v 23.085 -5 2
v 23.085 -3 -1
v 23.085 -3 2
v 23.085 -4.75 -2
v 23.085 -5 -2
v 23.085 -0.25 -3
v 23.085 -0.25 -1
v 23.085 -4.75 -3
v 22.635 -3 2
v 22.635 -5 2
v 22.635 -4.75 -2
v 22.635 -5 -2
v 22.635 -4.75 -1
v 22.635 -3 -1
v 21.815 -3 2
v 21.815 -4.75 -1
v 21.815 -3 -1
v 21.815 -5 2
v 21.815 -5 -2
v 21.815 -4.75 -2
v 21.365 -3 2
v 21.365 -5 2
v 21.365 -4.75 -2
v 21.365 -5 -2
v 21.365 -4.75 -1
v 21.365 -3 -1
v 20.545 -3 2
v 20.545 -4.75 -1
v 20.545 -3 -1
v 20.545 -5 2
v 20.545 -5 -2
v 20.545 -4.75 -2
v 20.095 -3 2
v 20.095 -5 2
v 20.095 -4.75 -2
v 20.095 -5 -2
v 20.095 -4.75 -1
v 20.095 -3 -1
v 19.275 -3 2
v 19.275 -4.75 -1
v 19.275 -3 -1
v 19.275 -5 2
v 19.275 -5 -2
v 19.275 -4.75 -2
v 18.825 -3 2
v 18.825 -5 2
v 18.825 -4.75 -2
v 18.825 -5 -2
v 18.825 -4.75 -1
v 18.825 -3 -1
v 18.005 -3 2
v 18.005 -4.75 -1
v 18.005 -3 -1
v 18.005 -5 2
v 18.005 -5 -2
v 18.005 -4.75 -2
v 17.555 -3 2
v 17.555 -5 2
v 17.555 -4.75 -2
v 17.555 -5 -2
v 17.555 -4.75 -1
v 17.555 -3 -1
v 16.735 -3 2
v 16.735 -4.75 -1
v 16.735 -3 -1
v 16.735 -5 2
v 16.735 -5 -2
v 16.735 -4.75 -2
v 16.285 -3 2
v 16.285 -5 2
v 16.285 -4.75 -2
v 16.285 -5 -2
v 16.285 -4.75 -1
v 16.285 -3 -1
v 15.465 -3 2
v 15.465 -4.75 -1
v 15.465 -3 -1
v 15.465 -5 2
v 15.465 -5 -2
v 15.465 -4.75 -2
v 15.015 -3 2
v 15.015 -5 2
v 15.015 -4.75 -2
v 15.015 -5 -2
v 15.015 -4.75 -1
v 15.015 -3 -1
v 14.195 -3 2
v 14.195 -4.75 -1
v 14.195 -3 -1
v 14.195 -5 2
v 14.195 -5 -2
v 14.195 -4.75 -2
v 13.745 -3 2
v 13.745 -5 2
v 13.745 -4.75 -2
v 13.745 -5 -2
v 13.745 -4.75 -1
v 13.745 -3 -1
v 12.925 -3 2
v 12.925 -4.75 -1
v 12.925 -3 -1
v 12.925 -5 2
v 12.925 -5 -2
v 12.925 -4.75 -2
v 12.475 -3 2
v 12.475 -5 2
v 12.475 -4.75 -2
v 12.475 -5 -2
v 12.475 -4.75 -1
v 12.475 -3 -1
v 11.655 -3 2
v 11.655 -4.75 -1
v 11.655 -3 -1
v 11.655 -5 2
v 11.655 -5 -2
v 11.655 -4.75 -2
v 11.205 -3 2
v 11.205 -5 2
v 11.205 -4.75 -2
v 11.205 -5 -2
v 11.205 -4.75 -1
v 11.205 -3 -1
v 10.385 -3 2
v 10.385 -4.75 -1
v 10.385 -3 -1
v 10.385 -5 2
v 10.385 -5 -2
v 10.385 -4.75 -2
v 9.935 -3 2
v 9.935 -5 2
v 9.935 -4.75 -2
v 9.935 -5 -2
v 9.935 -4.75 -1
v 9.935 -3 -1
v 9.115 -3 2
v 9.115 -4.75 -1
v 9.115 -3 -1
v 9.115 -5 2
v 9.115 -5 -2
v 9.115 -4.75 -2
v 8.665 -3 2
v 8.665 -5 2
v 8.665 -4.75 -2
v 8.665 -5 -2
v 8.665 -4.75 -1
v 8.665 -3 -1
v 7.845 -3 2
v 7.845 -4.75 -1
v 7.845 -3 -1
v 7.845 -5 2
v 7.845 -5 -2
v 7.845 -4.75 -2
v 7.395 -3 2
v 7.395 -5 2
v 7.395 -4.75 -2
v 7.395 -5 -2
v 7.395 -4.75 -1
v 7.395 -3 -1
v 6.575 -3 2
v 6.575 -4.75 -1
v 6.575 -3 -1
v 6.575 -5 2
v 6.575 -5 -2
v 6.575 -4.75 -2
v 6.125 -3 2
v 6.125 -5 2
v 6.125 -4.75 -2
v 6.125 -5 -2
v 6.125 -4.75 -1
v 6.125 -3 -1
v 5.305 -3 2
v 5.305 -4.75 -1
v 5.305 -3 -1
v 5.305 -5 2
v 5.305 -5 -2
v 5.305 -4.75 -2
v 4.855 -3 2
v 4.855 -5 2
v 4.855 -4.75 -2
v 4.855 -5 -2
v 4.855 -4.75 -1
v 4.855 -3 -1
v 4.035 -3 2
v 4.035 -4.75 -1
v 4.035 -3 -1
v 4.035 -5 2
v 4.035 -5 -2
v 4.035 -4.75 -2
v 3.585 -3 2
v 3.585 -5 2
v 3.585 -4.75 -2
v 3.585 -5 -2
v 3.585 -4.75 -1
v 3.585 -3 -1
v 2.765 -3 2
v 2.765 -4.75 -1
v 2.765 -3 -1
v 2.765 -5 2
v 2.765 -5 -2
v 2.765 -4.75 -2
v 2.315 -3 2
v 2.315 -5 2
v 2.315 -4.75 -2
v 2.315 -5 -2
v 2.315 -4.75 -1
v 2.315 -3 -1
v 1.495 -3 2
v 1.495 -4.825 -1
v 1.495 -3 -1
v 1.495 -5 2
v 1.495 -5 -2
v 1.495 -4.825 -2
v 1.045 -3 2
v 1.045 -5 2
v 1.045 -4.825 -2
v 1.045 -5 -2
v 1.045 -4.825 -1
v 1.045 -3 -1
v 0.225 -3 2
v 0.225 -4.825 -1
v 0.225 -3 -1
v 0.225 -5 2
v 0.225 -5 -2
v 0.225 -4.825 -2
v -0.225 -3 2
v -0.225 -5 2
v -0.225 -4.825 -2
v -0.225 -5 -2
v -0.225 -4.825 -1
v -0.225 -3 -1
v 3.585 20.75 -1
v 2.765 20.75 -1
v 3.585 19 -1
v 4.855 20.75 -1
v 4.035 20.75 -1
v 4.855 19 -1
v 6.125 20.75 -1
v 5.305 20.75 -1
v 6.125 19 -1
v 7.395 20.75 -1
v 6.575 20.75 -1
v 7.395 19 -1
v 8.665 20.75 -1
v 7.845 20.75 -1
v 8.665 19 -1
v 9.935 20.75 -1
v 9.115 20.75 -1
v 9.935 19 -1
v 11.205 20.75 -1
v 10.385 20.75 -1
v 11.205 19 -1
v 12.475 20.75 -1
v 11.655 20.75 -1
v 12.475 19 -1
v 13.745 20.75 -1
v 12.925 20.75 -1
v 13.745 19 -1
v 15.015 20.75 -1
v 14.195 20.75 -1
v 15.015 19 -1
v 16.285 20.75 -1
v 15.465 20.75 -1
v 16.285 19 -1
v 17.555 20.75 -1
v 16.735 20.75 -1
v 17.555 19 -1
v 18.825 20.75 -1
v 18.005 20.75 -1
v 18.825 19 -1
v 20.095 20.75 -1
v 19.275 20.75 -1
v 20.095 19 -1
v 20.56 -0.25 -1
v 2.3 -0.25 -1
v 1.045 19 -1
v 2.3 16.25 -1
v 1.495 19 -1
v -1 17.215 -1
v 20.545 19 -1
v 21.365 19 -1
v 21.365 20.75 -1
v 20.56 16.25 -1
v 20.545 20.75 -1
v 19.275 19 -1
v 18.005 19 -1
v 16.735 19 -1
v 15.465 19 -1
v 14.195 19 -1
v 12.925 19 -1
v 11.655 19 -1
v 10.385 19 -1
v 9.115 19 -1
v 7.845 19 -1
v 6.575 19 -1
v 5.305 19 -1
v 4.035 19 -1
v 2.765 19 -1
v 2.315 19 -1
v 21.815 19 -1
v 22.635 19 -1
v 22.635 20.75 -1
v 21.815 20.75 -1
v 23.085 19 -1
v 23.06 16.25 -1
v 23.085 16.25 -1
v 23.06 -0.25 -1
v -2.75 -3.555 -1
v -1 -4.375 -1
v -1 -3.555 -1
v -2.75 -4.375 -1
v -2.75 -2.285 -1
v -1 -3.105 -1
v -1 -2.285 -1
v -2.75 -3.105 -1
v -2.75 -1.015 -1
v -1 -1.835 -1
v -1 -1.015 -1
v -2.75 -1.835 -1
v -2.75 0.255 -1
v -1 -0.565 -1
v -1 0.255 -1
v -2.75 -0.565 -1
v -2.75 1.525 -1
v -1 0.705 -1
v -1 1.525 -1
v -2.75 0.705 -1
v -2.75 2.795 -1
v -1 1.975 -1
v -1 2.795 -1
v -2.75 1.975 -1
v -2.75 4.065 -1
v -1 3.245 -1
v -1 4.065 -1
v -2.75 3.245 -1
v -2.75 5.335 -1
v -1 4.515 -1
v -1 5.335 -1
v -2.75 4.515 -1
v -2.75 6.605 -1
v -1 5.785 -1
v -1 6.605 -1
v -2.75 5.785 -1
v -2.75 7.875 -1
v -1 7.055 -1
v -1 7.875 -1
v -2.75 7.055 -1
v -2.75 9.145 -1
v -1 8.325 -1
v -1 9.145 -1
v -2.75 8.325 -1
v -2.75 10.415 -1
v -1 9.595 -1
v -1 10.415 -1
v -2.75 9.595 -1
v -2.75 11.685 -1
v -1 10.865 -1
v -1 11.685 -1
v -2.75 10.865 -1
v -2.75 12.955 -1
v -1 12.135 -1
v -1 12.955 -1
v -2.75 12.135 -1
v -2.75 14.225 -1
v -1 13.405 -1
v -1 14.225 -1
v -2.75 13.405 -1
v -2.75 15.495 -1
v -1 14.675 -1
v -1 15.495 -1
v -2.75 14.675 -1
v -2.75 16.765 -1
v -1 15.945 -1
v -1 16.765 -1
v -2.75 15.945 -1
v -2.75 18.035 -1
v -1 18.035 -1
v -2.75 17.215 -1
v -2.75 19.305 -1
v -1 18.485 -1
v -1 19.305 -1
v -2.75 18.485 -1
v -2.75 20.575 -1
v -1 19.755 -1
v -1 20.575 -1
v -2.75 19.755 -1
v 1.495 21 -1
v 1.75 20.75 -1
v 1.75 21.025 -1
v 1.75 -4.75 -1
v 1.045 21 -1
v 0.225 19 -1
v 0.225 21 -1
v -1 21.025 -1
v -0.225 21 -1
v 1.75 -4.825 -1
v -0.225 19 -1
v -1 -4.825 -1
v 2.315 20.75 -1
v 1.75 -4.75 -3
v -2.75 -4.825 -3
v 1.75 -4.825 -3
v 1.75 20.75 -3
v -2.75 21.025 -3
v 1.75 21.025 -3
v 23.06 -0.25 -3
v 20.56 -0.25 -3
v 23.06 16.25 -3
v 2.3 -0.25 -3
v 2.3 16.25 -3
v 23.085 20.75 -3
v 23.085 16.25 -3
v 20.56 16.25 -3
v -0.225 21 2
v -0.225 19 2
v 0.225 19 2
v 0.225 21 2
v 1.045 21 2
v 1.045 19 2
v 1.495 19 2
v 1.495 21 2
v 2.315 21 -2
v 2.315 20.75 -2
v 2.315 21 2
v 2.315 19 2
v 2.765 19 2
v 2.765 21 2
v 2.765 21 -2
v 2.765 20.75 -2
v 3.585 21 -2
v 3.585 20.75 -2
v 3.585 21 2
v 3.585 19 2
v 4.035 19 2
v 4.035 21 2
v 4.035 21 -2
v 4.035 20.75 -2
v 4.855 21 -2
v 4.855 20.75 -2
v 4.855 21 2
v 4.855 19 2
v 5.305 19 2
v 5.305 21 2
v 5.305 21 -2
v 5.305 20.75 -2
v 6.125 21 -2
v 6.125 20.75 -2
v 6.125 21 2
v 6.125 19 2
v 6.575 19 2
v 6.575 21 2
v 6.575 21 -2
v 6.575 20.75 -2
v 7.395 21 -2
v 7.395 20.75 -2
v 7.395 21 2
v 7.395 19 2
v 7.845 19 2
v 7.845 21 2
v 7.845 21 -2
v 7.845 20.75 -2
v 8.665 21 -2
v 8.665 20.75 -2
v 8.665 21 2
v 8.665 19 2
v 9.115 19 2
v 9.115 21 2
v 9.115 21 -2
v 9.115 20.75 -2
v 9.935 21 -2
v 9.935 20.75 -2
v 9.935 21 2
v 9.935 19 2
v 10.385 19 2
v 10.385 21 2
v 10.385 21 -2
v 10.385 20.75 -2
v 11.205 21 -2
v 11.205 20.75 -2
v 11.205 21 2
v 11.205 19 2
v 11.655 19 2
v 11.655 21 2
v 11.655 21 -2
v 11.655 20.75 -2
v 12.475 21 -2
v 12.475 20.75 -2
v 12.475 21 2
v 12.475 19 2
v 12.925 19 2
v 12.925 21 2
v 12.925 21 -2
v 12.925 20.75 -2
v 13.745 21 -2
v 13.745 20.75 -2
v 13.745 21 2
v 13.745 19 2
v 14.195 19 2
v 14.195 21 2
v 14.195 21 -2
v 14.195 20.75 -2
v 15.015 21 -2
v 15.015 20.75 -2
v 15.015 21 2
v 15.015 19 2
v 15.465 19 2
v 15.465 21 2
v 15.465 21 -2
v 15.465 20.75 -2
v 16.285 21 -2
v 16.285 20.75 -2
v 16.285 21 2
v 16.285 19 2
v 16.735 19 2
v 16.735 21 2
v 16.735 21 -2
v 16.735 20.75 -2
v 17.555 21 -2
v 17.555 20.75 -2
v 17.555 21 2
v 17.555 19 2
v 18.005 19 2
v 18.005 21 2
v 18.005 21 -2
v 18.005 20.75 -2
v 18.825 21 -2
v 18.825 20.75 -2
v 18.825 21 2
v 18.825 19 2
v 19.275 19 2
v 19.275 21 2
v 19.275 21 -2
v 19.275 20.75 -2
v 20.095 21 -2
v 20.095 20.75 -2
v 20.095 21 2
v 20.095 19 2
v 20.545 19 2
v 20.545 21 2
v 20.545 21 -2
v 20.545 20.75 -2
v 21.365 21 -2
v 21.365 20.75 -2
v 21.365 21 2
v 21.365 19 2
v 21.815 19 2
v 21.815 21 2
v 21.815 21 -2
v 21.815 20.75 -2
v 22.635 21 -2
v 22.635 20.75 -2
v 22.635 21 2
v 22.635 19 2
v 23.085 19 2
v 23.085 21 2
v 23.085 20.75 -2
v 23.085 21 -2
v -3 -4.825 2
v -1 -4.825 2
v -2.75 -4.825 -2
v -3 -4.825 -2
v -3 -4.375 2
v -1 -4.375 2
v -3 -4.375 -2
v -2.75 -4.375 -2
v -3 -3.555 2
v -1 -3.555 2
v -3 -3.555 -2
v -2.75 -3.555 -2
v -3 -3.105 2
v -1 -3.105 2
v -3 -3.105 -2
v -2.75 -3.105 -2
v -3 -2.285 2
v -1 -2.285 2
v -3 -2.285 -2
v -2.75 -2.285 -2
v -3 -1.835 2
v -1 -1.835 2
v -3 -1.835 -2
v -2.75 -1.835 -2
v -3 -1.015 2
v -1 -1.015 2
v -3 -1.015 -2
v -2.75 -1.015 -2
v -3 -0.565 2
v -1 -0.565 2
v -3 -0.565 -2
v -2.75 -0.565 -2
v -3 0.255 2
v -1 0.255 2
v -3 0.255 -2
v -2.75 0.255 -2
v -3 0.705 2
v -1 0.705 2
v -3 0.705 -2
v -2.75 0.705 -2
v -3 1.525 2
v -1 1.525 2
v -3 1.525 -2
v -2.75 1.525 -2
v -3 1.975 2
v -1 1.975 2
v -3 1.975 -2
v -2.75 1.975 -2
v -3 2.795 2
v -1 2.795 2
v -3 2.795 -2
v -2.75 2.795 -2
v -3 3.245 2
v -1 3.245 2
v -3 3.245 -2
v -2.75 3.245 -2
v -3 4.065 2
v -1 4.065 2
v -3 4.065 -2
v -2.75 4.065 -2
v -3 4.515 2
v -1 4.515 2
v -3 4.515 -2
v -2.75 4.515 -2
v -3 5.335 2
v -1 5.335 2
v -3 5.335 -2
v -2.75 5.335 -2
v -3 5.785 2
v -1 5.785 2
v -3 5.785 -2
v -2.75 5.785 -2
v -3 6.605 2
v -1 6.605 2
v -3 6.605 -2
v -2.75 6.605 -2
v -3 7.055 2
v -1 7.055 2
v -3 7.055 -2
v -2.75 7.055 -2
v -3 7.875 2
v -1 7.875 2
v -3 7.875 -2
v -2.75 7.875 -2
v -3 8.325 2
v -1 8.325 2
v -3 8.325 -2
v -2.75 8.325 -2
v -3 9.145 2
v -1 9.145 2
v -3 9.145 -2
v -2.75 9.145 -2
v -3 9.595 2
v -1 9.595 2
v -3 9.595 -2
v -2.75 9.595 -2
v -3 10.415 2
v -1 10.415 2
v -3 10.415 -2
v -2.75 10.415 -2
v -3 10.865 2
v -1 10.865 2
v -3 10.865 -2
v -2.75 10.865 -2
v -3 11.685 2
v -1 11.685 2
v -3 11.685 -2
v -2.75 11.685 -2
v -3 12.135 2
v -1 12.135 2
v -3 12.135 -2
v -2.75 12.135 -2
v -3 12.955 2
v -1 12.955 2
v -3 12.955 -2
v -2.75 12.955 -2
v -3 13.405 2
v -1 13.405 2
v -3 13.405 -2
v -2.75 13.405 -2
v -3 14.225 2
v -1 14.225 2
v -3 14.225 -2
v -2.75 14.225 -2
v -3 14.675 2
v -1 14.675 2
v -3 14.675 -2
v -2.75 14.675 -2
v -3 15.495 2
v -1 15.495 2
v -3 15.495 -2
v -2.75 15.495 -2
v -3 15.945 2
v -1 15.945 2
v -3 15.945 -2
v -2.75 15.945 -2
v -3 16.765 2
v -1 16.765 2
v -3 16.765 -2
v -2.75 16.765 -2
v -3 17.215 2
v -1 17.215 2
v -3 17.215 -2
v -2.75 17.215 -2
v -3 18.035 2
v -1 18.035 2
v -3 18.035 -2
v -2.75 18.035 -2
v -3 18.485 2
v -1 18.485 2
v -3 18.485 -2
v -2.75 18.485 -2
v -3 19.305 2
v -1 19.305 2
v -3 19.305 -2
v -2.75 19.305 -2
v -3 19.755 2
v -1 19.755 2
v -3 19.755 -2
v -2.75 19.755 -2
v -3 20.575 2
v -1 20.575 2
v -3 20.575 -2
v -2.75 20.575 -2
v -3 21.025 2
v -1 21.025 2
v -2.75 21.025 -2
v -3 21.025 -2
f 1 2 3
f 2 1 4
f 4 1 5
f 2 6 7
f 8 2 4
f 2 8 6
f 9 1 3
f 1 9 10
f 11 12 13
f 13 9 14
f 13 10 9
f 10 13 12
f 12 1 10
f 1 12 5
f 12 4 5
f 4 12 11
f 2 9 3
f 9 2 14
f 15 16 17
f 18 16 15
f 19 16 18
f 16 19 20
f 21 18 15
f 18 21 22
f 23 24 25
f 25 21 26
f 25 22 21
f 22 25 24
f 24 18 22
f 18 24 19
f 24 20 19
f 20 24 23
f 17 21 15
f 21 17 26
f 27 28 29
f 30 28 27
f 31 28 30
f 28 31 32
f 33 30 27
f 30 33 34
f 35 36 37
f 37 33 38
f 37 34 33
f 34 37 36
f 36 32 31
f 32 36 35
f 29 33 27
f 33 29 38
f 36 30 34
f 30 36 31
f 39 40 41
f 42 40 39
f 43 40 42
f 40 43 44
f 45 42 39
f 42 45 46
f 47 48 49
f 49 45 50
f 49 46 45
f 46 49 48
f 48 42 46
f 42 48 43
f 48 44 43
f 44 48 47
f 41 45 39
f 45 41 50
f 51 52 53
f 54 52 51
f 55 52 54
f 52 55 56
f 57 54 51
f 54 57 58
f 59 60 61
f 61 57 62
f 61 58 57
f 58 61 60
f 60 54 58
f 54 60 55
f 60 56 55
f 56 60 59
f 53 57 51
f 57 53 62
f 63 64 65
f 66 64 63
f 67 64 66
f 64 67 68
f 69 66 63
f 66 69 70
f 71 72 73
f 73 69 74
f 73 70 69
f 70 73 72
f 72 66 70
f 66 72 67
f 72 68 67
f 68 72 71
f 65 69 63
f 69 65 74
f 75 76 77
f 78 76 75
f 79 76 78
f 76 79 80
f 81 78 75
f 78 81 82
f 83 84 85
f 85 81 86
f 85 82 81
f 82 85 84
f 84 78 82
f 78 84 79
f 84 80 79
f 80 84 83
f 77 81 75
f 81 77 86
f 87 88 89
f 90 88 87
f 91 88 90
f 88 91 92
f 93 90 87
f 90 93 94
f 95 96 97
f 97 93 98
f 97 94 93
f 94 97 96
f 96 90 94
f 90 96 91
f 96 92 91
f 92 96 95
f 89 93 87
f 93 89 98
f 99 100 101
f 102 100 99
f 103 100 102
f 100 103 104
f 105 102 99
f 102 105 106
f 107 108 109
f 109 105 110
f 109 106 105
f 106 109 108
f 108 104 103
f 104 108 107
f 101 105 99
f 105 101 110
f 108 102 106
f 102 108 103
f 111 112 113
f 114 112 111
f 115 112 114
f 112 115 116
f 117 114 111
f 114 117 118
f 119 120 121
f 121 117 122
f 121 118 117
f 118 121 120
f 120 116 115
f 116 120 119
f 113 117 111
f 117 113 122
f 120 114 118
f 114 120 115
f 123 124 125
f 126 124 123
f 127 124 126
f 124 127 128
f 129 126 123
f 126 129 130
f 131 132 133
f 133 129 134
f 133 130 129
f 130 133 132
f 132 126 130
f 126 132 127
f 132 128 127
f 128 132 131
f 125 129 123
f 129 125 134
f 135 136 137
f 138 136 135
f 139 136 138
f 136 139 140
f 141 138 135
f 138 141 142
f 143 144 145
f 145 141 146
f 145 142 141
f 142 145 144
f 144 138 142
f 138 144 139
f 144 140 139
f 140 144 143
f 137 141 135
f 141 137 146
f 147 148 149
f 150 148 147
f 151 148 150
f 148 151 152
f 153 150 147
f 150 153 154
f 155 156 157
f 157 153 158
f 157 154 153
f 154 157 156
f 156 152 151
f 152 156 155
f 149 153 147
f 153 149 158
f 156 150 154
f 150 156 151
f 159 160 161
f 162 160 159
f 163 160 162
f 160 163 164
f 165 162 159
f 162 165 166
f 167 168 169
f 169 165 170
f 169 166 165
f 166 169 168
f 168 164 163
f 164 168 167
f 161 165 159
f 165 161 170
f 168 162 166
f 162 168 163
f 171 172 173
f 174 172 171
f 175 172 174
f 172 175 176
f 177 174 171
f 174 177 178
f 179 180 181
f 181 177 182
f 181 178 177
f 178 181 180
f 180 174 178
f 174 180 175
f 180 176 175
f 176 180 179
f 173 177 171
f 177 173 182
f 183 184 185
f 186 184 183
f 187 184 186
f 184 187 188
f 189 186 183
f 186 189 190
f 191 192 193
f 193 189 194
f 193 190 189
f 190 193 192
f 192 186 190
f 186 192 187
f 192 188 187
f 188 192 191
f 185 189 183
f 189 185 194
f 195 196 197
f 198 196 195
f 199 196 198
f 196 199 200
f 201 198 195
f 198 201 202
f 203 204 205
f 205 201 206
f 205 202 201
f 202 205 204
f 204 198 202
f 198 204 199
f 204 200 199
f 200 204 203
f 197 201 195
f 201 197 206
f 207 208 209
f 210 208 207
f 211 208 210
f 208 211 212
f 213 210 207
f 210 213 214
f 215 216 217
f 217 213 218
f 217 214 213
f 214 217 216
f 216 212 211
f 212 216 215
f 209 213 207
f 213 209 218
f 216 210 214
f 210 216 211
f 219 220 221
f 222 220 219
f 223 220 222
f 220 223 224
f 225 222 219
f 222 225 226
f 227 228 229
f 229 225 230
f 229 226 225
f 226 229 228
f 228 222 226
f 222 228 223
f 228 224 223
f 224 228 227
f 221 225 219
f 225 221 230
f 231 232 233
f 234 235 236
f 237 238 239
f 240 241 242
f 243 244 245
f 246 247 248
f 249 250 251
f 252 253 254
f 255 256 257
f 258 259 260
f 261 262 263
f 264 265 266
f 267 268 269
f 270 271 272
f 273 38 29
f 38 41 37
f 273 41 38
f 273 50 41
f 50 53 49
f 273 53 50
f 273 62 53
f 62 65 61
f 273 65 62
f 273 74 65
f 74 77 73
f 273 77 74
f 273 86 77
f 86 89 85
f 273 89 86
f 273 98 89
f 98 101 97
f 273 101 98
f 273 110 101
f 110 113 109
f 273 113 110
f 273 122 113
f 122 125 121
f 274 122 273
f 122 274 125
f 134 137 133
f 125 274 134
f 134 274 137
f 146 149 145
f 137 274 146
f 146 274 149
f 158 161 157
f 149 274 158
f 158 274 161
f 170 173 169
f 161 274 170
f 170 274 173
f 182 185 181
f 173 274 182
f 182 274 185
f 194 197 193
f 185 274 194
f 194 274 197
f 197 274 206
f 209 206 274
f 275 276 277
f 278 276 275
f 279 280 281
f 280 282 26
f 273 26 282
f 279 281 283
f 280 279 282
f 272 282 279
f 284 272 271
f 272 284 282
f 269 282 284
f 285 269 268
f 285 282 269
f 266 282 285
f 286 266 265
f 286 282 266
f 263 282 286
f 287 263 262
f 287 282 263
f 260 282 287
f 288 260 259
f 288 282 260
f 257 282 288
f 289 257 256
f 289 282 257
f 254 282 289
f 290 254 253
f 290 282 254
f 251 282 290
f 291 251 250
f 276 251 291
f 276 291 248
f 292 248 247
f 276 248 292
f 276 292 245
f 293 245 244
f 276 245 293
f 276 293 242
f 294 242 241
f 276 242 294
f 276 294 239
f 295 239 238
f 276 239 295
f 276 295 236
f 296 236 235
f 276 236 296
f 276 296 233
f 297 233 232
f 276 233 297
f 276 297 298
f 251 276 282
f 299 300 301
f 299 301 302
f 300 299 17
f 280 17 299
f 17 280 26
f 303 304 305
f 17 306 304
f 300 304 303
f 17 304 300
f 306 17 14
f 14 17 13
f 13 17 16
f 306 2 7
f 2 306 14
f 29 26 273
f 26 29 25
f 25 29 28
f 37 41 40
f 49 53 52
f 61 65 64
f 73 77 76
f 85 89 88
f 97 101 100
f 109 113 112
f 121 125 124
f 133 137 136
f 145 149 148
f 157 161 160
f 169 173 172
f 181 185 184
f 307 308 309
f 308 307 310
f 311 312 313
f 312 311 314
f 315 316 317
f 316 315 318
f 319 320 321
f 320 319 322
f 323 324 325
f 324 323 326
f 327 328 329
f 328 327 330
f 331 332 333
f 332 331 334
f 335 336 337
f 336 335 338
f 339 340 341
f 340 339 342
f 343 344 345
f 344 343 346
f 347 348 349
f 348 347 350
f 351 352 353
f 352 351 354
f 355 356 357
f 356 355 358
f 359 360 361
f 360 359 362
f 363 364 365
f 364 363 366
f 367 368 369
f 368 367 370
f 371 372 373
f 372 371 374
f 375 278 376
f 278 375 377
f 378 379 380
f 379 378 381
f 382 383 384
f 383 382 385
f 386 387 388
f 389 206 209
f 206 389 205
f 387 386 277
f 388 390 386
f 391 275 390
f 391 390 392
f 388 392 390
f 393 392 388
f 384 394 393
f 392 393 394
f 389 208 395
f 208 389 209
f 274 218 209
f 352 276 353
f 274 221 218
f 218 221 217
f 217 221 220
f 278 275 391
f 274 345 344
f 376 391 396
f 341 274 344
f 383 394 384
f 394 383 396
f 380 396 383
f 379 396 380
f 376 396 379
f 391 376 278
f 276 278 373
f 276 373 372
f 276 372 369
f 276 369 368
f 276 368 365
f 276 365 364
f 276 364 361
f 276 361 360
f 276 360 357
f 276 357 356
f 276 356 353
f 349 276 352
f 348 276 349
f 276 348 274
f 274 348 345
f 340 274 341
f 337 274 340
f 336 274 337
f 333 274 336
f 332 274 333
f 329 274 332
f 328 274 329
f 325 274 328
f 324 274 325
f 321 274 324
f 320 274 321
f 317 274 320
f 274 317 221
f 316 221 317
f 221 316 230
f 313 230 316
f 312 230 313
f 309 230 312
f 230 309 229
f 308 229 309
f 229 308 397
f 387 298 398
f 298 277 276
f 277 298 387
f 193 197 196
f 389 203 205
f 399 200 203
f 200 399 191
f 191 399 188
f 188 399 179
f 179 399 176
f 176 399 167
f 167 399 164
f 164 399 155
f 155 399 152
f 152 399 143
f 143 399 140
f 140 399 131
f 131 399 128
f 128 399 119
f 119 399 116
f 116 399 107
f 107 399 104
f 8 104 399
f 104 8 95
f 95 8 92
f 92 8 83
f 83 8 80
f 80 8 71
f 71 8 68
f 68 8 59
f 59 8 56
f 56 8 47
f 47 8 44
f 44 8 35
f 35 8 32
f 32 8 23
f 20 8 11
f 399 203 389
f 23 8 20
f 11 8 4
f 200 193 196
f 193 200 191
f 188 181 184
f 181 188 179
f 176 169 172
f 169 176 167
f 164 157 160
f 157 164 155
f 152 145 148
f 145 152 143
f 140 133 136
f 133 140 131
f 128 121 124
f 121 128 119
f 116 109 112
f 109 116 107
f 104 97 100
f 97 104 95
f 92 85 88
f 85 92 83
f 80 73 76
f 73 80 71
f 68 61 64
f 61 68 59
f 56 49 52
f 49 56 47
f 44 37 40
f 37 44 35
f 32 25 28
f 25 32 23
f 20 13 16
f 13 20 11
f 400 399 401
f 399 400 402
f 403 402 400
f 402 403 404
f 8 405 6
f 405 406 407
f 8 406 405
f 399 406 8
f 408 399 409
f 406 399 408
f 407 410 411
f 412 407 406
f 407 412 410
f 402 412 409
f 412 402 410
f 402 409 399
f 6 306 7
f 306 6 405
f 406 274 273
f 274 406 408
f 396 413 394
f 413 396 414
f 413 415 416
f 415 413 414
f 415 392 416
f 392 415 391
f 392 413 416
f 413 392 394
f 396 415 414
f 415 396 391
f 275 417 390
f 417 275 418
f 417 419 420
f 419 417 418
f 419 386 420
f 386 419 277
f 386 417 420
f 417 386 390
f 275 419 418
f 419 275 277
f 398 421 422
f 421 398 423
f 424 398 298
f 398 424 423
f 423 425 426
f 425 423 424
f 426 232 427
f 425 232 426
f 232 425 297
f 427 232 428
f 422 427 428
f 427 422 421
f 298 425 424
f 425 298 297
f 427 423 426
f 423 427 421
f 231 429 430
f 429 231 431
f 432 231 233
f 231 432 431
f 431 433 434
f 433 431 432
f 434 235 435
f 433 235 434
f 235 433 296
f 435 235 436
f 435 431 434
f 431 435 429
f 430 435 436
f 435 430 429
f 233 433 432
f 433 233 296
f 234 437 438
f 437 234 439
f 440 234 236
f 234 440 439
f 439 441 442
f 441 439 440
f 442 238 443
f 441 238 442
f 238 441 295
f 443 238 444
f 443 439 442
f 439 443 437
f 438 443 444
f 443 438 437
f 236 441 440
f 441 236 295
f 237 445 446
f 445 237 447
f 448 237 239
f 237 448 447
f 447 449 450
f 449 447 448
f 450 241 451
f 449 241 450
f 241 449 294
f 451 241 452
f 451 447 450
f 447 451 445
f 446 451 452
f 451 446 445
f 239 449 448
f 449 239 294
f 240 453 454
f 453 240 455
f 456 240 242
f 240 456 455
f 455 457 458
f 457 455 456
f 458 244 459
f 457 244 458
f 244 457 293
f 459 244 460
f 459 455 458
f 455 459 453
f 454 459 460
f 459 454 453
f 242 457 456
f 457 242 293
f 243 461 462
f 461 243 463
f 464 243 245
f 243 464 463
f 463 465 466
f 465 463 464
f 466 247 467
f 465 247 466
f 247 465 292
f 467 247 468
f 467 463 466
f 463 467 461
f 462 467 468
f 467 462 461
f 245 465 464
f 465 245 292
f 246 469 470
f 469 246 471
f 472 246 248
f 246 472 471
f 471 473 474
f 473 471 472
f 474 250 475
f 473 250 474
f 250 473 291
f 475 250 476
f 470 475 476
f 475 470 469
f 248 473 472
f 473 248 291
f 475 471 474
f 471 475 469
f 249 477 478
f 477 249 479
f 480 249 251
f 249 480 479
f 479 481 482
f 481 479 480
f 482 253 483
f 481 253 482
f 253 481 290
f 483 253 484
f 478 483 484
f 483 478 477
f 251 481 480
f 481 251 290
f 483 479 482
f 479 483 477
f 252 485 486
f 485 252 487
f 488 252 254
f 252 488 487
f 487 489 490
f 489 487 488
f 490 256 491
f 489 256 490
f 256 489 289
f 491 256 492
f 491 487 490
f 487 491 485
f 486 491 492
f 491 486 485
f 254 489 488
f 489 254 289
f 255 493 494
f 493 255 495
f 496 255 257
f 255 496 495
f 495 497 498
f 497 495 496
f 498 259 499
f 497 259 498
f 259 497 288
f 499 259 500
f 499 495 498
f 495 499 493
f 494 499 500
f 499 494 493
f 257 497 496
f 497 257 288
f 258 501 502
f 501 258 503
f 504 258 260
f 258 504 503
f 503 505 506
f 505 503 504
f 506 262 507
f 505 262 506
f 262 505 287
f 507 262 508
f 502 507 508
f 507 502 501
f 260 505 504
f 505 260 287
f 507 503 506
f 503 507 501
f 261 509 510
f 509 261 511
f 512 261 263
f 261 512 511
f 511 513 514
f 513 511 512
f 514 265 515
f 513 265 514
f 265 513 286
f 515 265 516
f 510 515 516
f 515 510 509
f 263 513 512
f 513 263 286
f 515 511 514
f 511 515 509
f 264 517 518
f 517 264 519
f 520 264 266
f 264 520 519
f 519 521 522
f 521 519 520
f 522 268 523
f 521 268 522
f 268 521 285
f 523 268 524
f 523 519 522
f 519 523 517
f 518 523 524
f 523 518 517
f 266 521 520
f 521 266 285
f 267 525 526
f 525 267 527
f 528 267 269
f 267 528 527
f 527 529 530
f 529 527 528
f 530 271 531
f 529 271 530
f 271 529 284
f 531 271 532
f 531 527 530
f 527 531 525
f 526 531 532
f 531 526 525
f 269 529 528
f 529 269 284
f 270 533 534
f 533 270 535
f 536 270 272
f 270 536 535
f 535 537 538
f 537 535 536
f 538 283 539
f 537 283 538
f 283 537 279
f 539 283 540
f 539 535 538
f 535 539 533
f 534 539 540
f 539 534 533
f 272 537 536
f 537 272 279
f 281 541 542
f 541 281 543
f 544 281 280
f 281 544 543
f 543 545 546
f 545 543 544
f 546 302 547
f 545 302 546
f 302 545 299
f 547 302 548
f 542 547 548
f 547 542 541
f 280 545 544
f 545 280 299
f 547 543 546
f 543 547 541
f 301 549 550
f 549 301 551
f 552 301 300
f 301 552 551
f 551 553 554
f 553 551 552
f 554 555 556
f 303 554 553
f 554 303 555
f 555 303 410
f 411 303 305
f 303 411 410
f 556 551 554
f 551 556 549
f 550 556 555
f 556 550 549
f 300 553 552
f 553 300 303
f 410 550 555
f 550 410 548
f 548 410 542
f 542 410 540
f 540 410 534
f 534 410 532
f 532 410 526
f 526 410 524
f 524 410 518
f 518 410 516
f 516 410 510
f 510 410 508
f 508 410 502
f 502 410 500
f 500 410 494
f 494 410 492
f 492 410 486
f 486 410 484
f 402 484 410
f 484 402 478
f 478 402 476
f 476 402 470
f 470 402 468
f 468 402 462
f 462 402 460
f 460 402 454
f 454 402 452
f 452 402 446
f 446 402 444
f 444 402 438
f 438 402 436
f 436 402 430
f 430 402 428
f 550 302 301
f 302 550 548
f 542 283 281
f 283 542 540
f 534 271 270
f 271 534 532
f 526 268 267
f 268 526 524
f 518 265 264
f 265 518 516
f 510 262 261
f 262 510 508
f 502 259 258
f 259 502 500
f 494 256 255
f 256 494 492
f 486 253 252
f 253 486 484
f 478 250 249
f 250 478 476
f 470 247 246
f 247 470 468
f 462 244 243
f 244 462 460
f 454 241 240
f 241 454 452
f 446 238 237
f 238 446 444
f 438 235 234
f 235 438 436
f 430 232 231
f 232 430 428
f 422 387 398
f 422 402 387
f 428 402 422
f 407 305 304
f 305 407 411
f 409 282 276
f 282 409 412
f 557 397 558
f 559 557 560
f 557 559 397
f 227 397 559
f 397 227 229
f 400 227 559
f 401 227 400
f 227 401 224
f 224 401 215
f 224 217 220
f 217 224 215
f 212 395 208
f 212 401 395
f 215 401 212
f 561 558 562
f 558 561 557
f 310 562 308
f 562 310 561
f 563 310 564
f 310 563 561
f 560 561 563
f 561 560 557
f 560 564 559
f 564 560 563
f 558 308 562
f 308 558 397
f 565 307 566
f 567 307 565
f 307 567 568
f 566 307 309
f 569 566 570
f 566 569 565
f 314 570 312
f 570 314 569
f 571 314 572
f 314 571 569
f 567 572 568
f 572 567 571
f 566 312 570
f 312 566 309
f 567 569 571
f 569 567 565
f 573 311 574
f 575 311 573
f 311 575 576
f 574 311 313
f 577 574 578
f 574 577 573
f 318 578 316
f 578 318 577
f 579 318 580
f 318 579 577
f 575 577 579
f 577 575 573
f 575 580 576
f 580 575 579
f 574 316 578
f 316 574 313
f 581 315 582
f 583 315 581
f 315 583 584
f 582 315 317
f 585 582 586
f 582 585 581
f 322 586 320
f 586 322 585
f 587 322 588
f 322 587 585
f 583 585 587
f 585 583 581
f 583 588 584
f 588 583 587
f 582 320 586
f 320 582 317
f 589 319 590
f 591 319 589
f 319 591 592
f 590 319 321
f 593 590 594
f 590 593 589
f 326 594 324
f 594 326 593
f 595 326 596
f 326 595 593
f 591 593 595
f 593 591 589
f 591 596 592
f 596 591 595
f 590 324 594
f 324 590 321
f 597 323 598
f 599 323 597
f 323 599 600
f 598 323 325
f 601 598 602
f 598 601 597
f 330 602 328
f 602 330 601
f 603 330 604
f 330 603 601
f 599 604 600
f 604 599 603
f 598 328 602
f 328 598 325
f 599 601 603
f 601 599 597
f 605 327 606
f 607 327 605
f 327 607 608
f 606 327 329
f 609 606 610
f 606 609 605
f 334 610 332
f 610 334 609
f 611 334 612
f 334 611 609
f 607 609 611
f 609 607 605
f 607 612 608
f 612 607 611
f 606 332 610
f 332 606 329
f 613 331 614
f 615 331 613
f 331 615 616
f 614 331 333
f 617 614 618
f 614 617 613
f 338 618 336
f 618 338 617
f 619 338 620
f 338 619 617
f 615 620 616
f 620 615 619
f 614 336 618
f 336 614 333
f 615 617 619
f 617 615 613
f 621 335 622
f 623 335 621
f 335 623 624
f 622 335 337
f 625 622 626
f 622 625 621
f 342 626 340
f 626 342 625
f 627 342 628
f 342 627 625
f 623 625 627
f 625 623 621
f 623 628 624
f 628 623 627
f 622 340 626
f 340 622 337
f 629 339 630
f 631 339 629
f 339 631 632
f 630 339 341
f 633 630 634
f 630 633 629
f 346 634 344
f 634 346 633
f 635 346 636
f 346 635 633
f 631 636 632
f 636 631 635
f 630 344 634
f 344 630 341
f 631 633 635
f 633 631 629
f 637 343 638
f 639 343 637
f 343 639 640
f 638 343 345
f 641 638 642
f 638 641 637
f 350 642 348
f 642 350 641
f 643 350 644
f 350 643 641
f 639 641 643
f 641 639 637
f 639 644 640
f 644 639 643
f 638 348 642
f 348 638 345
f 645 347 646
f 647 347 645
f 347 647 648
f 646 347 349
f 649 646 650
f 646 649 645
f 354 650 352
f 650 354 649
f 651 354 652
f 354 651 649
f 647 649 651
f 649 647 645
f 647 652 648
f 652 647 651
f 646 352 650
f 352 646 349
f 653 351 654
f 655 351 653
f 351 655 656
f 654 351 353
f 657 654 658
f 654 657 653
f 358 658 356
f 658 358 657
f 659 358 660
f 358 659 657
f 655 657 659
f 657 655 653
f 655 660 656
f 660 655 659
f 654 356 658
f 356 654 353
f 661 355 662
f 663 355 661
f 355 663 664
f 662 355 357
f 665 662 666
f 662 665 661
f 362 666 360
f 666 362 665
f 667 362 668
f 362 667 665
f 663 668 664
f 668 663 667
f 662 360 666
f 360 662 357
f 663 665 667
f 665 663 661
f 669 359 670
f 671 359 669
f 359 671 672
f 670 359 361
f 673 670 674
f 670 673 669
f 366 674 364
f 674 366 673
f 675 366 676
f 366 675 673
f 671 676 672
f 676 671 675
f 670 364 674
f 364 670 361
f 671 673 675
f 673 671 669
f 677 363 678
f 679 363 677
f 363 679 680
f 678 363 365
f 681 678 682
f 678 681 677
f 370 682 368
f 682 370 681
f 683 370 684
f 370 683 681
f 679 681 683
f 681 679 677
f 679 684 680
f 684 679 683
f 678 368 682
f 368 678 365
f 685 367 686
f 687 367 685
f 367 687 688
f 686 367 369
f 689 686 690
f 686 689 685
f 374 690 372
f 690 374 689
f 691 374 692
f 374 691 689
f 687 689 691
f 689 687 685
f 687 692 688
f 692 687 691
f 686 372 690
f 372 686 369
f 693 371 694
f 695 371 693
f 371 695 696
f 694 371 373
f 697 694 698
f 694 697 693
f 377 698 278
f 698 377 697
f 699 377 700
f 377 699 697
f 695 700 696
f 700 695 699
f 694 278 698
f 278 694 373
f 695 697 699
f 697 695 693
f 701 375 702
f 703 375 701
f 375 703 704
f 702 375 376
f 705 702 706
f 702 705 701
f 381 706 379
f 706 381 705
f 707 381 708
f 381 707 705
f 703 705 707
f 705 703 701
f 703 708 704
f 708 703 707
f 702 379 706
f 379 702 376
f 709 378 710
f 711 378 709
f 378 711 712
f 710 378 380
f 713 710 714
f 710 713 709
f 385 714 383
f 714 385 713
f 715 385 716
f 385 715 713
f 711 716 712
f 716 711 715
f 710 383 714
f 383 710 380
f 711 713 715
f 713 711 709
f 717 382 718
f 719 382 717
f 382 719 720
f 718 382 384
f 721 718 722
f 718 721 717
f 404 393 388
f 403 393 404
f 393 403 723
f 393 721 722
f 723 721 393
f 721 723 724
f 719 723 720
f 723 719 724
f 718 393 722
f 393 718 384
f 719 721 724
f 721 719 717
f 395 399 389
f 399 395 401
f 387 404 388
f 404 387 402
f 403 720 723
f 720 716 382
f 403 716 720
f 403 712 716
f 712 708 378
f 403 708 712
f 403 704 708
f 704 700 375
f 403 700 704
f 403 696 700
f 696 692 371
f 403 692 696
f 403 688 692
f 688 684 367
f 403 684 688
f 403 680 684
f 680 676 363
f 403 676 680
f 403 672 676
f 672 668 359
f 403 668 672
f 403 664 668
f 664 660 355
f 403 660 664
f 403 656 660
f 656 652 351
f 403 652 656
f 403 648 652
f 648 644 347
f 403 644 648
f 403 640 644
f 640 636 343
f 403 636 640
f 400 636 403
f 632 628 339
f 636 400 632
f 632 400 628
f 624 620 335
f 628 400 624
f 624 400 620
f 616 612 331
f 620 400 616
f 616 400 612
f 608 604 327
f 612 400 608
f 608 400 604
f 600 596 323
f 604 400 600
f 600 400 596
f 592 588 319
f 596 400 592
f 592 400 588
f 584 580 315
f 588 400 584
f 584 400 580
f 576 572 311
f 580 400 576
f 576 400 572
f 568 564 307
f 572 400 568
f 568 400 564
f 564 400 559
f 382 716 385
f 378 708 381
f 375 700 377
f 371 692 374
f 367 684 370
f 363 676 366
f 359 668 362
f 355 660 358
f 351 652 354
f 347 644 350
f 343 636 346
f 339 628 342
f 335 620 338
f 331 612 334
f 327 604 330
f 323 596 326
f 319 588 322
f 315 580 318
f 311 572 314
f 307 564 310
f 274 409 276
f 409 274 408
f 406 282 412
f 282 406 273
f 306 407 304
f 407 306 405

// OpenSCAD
translate([-0.2,-.5,-3])
	cube([2.5,18,2]);
translate([1.27*18-2.3,-0.5,-3])
	cube([2.5,18,2]);
	
translate([1.27*18,-4,0])
rotate([0,0,180])
	Esp32Adapter();

translate([0,16+4,0])
	Esp32Adapter();

translate([-2,-4.6,0])
rotate([0,0,90])
	Esp32Adapter(n=20);
	
module Esp32Adapter(
	n=18,
	ix=0.45,
	iy=2,
	iz=4,
	p=1.27
){
	translate([n*p/2,-1.5,-iz/2])
		cube([n*p+ix,iy+2.5,2],center=true);
	for(i=[0:1:n]){
		translate([i*p,0,0])
			cube([ix,iy,iz],center=true);
	}
}
